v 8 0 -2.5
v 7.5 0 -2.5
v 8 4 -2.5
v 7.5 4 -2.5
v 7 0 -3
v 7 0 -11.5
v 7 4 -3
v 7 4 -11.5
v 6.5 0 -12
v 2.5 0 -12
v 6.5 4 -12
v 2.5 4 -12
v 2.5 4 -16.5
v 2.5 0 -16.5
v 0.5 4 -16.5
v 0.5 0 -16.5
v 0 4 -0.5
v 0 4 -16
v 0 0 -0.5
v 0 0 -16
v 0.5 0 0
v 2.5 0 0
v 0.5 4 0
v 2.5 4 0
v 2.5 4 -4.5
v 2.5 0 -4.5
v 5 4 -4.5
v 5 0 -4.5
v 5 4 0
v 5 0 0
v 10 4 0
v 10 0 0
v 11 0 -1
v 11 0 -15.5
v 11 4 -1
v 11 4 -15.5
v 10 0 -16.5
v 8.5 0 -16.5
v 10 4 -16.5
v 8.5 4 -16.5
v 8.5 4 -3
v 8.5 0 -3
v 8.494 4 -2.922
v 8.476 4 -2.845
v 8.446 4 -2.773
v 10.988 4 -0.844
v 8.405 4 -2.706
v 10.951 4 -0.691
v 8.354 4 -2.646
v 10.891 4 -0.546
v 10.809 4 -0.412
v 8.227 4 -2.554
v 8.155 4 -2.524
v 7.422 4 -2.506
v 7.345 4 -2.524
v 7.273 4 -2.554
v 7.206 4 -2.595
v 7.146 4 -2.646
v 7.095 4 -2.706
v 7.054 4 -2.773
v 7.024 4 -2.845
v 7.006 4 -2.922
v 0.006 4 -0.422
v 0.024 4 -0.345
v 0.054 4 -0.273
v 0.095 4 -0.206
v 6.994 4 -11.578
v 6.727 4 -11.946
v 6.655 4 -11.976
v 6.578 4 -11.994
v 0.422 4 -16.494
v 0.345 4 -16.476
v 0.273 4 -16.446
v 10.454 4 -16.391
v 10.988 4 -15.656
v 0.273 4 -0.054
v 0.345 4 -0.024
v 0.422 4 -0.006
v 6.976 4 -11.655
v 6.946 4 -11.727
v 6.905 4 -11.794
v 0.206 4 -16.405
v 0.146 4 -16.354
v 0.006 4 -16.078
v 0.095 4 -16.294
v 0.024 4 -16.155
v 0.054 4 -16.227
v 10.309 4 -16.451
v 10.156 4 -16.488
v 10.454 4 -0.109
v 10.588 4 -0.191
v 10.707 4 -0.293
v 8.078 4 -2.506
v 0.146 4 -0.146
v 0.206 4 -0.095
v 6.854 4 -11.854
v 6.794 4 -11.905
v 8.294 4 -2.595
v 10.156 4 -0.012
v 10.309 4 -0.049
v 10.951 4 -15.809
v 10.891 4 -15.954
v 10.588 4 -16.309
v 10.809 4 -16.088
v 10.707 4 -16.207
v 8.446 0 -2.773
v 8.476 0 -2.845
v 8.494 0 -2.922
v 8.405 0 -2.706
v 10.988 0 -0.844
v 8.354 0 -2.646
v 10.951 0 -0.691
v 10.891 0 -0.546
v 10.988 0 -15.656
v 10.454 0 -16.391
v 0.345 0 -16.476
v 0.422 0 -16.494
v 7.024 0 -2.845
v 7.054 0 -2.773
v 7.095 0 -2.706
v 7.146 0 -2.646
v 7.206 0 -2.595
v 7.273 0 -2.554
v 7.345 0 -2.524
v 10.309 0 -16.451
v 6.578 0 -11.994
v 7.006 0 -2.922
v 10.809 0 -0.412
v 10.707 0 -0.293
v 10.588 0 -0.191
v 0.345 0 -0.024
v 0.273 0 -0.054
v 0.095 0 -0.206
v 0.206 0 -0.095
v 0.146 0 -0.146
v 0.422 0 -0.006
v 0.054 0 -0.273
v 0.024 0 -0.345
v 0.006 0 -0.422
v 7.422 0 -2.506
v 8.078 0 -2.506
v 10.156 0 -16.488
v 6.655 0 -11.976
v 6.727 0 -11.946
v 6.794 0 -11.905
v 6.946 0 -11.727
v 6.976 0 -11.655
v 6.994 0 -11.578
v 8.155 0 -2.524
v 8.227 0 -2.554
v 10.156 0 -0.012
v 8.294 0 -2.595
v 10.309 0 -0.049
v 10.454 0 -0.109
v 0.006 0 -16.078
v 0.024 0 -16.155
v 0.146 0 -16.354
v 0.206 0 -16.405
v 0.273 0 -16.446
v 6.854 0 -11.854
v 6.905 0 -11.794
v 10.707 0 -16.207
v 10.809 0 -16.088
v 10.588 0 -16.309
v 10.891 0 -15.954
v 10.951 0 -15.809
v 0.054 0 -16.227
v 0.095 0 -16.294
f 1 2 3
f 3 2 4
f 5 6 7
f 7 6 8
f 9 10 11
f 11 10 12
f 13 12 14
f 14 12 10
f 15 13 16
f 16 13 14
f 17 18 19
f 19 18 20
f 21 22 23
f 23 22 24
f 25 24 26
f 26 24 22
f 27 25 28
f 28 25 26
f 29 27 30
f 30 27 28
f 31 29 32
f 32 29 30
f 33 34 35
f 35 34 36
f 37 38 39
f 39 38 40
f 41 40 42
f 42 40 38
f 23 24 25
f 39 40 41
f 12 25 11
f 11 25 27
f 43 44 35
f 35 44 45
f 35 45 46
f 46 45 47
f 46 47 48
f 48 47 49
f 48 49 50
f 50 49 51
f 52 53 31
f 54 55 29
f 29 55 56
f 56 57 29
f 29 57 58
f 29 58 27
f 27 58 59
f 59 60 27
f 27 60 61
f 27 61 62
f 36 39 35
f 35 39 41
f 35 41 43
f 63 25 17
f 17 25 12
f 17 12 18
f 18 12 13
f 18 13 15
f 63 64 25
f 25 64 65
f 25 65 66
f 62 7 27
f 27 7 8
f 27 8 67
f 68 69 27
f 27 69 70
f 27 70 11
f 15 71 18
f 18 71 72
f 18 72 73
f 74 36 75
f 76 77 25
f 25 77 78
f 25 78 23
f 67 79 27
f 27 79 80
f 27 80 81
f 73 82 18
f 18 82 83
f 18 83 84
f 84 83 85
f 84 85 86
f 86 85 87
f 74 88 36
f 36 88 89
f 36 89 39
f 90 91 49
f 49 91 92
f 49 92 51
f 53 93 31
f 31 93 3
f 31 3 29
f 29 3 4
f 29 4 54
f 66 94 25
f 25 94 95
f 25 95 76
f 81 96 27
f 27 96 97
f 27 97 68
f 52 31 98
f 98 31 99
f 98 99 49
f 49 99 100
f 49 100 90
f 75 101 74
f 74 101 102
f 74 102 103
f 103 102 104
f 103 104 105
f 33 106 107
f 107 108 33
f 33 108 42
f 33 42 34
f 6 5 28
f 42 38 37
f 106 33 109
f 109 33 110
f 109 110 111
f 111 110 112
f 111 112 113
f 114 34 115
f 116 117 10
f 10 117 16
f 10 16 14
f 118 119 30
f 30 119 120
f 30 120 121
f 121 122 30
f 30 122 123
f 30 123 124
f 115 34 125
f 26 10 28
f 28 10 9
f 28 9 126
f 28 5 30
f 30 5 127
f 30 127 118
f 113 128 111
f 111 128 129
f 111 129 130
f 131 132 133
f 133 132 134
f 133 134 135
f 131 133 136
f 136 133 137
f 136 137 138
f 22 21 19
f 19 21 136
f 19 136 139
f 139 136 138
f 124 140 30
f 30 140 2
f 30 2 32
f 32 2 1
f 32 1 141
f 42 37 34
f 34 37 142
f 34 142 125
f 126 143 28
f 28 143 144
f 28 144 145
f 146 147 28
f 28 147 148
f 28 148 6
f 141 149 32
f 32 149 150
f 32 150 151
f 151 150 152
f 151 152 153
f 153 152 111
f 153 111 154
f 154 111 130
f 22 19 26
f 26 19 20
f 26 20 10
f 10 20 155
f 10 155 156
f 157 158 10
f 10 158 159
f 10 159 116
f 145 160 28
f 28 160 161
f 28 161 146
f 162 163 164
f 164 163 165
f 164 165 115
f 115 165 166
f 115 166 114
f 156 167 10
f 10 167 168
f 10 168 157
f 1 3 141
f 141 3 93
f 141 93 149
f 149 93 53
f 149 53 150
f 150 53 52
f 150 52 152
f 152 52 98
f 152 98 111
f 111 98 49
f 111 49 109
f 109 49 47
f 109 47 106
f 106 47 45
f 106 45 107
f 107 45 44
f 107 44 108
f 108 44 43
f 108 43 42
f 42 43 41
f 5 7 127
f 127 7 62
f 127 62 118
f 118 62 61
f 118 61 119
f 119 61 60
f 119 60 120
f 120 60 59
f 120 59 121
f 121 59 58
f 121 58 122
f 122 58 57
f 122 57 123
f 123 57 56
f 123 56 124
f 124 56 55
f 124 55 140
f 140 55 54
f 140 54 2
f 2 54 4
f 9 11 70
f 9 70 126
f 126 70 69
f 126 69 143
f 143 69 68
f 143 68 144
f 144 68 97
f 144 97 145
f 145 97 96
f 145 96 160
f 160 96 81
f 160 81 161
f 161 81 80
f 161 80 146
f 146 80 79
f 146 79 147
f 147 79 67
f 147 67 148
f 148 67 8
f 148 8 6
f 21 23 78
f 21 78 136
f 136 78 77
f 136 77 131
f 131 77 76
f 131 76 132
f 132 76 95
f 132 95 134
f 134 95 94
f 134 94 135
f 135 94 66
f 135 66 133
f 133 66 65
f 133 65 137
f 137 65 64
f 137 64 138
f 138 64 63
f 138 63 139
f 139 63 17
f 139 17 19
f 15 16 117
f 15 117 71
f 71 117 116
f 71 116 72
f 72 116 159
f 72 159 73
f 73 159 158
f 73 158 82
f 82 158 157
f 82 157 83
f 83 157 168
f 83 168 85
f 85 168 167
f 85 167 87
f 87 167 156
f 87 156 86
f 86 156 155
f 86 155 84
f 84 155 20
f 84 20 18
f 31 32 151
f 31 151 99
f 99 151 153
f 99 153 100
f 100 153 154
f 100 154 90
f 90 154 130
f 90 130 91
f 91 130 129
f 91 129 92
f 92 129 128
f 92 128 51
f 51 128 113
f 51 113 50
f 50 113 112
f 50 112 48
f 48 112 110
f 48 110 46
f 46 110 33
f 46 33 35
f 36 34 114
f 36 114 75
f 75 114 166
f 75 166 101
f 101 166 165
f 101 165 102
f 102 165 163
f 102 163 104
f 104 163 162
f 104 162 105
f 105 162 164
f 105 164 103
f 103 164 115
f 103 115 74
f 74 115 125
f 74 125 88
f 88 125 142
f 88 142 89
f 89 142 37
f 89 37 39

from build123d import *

# Parameters (mm, degrees)
SALIENTE_EXTRUIR1_DEPTH = 4
REDONDEO1_R             = 0.5
REDONDEO2_R             = 1


with BuildPart() as part:
    # Croquis1 → Saliente-Extruir1 (new body)
    with BuildSketch(Plane(origin=(0, 0, 0), x_dir=(1, 0, 0), z_dir=(0, 1, 0))):
        Polygon((8.5, 2.5), (7, 2.5), (7, 12), (2.5, 12), (2.5, 16.5), (0, 16.5), (0, 0), (2.5, 0), (2.5, 4.5), (5, 4.5), (5, 0), (11, 0), (11, 16.5), (8.5, 16.5), align=None)
    extrude(amount=SALIENTE_EXTRUIR1_DEPTH)

    # Redondeo1
    redondeo1_edges = [part.edges().sort_by_distance(p)[0] for p in [
        (8.5, 2, -2.5),
        (0, 2, 0),
        (0, 2, -16.5),
        (7, 2, -12),
        (7, 2, -2.5),
    ]]
    fillet(redondeo1_edges, radius=REDONDEO1_R)

    # Redondeo2
    redondeo2_edges = [part.edges().sort_by_distance(p)[0] for p in [
        (11, 2, -16.5),
        (11, 2, 0),
    ]]
    fillet(redondeo2_edges, radius=REDONDEO2_R)


solid = part.part
